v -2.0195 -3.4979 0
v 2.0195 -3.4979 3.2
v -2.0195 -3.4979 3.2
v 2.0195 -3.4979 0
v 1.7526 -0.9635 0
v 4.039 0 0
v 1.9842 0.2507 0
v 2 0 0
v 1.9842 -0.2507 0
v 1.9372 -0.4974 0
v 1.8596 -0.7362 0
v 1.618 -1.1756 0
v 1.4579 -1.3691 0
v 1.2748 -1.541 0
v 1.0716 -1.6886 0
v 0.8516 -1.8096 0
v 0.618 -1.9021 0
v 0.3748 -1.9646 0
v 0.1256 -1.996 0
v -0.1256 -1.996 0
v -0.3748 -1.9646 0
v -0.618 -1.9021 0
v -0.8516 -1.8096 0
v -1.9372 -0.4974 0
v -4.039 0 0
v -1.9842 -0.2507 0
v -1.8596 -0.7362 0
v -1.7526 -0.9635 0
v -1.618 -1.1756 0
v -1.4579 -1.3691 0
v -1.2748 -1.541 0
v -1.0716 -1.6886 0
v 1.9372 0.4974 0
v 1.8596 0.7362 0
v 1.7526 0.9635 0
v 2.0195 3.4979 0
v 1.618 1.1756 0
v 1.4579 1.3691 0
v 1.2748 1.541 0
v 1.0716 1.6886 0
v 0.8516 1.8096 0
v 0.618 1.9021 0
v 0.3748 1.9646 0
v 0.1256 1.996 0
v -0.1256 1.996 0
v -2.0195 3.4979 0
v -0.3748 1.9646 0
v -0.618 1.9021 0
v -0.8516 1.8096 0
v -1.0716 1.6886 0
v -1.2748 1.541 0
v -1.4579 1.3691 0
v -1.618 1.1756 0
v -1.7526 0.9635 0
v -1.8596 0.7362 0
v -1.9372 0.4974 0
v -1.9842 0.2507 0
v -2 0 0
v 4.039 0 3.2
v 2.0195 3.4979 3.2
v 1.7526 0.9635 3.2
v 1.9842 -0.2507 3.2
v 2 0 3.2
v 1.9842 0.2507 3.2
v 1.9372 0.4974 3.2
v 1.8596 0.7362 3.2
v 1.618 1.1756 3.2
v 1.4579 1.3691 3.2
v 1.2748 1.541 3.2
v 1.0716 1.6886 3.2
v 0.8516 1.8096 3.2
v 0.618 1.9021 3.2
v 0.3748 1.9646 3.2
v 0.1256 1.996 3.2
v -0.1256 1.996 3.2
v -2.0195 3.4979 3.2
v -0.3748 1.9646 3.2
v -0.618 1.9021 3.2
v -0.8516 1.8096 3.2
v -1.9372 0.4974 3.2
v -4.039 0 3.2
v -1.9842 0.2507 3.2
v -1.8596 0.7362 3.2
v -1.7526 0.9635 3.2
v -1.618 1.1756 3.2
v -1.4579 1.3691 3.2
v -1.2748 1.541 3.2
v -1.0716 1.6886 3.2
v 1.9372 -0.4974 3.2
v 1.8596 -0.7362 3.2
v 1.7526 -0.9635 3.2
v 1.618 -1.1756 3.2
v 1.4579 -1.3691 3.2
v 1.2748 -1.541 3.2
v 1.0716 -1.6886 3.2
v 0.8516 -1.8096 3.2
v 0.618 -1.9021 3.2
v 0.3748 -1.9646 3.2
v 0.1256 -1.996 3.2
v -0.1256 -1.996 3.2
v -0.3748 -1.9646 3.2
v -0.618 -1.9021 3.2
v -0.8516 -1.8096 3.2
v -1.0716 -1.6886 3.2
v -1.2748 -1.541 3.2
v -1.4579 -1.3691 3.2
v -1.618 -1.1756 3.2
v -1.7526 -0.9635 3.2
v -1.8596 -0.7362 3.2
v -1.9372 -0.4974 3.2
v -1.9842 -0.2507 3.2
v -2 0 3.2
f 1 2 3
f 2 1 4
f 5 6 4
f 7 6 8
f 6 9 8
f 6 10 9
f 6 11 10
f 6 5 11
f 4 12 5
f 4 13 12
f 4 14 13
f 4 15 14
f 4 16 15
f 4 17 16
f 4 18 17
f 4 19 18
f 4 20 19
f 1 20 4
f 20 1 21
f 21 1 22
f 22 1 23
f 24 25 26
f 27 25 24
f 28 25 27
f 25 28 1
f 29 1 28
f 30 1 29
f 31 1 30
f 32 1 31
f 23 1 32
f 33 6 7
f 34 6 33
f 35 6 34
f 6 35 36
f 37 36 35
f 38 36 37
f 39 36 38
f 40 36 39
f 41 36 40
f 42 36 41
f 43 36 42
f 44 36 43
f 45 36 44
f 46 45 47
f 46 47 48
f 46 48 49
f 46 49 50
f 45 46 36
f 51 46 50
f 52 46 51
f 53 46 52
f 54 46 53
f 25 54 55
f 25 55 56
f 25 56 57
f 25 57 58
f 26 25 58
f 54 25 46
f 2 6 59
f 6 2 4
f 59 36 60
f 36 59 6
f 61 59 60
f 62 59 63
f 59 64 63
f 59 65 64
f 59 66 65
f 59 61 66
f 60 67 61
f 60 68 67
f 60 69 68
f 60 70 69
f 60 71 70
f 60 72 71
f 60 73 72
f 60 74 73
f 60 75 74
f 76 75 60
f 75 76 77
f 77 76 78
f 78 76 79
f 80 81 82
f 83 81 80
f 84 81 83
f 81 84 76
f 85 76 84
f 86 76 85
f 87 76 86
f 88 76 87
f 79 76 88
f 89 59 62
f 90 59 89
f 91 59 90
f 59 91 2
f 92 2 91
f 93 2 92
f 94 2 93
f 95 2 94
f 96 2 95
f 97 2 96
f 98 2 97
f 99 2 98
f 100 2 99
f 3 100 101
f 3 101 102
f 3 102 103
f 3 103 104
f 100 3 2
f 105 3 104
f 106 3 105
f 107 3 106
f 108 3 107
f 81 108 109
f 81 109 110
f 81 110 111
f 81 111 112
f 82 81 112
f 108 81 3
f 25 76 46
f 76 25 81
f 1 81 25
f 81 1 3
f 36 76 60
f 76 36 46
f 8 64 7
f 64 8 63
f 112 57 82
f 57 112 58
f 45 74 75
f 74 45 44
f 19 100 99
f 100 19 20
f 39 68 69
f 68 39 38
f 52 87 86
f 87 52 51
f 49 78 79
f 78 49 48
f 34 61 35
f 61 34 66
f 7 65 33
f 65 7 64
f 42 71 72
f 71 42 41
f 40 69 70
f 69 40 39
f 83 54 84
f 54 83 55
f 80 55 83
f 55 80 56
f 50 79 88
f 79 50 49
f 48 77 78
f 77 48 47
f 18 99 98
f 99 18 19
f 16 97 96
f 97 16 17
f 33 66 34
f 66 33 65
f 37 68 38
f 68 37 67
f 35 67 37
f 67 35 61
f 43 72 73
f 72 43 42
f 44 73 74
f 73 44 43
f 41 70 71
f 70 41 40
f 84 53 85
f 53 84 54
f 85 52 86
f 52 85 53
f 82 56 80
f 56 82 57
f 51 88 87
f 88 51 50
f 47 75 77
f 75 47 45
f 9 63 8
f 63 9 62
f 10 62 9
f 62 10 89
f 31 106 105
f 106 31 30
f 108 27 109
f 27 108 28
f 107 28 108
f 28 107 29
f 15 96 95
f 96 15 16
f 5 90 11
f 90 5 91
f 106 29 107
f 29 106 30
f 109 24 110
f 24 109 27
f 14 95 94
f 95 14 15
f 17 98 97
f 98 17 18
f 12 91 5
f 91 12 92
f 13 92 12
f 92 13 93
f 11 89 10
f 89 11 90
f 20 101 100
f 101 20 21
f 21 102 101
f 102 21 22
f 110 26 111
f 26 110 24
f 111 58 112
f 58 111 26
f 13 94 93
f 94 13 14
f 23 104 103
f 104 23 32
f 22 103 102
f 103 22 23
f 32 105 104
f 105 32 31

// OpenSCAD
$fn = 50;


difference() {
	union() {
		translate(v = [0, 0, 0]) {
			rotate(a = [0, 0, 0]) {
				difference() {
					union() {
						linear_extrude(height = 3.2000000000) {
							polygon(points = [[4.0390000000, 0.0000000000], [2.0195000000, 3.4978766059], [-2.0195000000, 3.4978766059], [-4.0390000000, 0.0000000000], [-2.0195000000, -3.4978766059], [2.0195000000, -3.4978766059]]);
						}
					}
					union();
				}
			}
		}
	}
	union() {
		cylinder(h = 100, r = 2.0000000000);
	}
}
